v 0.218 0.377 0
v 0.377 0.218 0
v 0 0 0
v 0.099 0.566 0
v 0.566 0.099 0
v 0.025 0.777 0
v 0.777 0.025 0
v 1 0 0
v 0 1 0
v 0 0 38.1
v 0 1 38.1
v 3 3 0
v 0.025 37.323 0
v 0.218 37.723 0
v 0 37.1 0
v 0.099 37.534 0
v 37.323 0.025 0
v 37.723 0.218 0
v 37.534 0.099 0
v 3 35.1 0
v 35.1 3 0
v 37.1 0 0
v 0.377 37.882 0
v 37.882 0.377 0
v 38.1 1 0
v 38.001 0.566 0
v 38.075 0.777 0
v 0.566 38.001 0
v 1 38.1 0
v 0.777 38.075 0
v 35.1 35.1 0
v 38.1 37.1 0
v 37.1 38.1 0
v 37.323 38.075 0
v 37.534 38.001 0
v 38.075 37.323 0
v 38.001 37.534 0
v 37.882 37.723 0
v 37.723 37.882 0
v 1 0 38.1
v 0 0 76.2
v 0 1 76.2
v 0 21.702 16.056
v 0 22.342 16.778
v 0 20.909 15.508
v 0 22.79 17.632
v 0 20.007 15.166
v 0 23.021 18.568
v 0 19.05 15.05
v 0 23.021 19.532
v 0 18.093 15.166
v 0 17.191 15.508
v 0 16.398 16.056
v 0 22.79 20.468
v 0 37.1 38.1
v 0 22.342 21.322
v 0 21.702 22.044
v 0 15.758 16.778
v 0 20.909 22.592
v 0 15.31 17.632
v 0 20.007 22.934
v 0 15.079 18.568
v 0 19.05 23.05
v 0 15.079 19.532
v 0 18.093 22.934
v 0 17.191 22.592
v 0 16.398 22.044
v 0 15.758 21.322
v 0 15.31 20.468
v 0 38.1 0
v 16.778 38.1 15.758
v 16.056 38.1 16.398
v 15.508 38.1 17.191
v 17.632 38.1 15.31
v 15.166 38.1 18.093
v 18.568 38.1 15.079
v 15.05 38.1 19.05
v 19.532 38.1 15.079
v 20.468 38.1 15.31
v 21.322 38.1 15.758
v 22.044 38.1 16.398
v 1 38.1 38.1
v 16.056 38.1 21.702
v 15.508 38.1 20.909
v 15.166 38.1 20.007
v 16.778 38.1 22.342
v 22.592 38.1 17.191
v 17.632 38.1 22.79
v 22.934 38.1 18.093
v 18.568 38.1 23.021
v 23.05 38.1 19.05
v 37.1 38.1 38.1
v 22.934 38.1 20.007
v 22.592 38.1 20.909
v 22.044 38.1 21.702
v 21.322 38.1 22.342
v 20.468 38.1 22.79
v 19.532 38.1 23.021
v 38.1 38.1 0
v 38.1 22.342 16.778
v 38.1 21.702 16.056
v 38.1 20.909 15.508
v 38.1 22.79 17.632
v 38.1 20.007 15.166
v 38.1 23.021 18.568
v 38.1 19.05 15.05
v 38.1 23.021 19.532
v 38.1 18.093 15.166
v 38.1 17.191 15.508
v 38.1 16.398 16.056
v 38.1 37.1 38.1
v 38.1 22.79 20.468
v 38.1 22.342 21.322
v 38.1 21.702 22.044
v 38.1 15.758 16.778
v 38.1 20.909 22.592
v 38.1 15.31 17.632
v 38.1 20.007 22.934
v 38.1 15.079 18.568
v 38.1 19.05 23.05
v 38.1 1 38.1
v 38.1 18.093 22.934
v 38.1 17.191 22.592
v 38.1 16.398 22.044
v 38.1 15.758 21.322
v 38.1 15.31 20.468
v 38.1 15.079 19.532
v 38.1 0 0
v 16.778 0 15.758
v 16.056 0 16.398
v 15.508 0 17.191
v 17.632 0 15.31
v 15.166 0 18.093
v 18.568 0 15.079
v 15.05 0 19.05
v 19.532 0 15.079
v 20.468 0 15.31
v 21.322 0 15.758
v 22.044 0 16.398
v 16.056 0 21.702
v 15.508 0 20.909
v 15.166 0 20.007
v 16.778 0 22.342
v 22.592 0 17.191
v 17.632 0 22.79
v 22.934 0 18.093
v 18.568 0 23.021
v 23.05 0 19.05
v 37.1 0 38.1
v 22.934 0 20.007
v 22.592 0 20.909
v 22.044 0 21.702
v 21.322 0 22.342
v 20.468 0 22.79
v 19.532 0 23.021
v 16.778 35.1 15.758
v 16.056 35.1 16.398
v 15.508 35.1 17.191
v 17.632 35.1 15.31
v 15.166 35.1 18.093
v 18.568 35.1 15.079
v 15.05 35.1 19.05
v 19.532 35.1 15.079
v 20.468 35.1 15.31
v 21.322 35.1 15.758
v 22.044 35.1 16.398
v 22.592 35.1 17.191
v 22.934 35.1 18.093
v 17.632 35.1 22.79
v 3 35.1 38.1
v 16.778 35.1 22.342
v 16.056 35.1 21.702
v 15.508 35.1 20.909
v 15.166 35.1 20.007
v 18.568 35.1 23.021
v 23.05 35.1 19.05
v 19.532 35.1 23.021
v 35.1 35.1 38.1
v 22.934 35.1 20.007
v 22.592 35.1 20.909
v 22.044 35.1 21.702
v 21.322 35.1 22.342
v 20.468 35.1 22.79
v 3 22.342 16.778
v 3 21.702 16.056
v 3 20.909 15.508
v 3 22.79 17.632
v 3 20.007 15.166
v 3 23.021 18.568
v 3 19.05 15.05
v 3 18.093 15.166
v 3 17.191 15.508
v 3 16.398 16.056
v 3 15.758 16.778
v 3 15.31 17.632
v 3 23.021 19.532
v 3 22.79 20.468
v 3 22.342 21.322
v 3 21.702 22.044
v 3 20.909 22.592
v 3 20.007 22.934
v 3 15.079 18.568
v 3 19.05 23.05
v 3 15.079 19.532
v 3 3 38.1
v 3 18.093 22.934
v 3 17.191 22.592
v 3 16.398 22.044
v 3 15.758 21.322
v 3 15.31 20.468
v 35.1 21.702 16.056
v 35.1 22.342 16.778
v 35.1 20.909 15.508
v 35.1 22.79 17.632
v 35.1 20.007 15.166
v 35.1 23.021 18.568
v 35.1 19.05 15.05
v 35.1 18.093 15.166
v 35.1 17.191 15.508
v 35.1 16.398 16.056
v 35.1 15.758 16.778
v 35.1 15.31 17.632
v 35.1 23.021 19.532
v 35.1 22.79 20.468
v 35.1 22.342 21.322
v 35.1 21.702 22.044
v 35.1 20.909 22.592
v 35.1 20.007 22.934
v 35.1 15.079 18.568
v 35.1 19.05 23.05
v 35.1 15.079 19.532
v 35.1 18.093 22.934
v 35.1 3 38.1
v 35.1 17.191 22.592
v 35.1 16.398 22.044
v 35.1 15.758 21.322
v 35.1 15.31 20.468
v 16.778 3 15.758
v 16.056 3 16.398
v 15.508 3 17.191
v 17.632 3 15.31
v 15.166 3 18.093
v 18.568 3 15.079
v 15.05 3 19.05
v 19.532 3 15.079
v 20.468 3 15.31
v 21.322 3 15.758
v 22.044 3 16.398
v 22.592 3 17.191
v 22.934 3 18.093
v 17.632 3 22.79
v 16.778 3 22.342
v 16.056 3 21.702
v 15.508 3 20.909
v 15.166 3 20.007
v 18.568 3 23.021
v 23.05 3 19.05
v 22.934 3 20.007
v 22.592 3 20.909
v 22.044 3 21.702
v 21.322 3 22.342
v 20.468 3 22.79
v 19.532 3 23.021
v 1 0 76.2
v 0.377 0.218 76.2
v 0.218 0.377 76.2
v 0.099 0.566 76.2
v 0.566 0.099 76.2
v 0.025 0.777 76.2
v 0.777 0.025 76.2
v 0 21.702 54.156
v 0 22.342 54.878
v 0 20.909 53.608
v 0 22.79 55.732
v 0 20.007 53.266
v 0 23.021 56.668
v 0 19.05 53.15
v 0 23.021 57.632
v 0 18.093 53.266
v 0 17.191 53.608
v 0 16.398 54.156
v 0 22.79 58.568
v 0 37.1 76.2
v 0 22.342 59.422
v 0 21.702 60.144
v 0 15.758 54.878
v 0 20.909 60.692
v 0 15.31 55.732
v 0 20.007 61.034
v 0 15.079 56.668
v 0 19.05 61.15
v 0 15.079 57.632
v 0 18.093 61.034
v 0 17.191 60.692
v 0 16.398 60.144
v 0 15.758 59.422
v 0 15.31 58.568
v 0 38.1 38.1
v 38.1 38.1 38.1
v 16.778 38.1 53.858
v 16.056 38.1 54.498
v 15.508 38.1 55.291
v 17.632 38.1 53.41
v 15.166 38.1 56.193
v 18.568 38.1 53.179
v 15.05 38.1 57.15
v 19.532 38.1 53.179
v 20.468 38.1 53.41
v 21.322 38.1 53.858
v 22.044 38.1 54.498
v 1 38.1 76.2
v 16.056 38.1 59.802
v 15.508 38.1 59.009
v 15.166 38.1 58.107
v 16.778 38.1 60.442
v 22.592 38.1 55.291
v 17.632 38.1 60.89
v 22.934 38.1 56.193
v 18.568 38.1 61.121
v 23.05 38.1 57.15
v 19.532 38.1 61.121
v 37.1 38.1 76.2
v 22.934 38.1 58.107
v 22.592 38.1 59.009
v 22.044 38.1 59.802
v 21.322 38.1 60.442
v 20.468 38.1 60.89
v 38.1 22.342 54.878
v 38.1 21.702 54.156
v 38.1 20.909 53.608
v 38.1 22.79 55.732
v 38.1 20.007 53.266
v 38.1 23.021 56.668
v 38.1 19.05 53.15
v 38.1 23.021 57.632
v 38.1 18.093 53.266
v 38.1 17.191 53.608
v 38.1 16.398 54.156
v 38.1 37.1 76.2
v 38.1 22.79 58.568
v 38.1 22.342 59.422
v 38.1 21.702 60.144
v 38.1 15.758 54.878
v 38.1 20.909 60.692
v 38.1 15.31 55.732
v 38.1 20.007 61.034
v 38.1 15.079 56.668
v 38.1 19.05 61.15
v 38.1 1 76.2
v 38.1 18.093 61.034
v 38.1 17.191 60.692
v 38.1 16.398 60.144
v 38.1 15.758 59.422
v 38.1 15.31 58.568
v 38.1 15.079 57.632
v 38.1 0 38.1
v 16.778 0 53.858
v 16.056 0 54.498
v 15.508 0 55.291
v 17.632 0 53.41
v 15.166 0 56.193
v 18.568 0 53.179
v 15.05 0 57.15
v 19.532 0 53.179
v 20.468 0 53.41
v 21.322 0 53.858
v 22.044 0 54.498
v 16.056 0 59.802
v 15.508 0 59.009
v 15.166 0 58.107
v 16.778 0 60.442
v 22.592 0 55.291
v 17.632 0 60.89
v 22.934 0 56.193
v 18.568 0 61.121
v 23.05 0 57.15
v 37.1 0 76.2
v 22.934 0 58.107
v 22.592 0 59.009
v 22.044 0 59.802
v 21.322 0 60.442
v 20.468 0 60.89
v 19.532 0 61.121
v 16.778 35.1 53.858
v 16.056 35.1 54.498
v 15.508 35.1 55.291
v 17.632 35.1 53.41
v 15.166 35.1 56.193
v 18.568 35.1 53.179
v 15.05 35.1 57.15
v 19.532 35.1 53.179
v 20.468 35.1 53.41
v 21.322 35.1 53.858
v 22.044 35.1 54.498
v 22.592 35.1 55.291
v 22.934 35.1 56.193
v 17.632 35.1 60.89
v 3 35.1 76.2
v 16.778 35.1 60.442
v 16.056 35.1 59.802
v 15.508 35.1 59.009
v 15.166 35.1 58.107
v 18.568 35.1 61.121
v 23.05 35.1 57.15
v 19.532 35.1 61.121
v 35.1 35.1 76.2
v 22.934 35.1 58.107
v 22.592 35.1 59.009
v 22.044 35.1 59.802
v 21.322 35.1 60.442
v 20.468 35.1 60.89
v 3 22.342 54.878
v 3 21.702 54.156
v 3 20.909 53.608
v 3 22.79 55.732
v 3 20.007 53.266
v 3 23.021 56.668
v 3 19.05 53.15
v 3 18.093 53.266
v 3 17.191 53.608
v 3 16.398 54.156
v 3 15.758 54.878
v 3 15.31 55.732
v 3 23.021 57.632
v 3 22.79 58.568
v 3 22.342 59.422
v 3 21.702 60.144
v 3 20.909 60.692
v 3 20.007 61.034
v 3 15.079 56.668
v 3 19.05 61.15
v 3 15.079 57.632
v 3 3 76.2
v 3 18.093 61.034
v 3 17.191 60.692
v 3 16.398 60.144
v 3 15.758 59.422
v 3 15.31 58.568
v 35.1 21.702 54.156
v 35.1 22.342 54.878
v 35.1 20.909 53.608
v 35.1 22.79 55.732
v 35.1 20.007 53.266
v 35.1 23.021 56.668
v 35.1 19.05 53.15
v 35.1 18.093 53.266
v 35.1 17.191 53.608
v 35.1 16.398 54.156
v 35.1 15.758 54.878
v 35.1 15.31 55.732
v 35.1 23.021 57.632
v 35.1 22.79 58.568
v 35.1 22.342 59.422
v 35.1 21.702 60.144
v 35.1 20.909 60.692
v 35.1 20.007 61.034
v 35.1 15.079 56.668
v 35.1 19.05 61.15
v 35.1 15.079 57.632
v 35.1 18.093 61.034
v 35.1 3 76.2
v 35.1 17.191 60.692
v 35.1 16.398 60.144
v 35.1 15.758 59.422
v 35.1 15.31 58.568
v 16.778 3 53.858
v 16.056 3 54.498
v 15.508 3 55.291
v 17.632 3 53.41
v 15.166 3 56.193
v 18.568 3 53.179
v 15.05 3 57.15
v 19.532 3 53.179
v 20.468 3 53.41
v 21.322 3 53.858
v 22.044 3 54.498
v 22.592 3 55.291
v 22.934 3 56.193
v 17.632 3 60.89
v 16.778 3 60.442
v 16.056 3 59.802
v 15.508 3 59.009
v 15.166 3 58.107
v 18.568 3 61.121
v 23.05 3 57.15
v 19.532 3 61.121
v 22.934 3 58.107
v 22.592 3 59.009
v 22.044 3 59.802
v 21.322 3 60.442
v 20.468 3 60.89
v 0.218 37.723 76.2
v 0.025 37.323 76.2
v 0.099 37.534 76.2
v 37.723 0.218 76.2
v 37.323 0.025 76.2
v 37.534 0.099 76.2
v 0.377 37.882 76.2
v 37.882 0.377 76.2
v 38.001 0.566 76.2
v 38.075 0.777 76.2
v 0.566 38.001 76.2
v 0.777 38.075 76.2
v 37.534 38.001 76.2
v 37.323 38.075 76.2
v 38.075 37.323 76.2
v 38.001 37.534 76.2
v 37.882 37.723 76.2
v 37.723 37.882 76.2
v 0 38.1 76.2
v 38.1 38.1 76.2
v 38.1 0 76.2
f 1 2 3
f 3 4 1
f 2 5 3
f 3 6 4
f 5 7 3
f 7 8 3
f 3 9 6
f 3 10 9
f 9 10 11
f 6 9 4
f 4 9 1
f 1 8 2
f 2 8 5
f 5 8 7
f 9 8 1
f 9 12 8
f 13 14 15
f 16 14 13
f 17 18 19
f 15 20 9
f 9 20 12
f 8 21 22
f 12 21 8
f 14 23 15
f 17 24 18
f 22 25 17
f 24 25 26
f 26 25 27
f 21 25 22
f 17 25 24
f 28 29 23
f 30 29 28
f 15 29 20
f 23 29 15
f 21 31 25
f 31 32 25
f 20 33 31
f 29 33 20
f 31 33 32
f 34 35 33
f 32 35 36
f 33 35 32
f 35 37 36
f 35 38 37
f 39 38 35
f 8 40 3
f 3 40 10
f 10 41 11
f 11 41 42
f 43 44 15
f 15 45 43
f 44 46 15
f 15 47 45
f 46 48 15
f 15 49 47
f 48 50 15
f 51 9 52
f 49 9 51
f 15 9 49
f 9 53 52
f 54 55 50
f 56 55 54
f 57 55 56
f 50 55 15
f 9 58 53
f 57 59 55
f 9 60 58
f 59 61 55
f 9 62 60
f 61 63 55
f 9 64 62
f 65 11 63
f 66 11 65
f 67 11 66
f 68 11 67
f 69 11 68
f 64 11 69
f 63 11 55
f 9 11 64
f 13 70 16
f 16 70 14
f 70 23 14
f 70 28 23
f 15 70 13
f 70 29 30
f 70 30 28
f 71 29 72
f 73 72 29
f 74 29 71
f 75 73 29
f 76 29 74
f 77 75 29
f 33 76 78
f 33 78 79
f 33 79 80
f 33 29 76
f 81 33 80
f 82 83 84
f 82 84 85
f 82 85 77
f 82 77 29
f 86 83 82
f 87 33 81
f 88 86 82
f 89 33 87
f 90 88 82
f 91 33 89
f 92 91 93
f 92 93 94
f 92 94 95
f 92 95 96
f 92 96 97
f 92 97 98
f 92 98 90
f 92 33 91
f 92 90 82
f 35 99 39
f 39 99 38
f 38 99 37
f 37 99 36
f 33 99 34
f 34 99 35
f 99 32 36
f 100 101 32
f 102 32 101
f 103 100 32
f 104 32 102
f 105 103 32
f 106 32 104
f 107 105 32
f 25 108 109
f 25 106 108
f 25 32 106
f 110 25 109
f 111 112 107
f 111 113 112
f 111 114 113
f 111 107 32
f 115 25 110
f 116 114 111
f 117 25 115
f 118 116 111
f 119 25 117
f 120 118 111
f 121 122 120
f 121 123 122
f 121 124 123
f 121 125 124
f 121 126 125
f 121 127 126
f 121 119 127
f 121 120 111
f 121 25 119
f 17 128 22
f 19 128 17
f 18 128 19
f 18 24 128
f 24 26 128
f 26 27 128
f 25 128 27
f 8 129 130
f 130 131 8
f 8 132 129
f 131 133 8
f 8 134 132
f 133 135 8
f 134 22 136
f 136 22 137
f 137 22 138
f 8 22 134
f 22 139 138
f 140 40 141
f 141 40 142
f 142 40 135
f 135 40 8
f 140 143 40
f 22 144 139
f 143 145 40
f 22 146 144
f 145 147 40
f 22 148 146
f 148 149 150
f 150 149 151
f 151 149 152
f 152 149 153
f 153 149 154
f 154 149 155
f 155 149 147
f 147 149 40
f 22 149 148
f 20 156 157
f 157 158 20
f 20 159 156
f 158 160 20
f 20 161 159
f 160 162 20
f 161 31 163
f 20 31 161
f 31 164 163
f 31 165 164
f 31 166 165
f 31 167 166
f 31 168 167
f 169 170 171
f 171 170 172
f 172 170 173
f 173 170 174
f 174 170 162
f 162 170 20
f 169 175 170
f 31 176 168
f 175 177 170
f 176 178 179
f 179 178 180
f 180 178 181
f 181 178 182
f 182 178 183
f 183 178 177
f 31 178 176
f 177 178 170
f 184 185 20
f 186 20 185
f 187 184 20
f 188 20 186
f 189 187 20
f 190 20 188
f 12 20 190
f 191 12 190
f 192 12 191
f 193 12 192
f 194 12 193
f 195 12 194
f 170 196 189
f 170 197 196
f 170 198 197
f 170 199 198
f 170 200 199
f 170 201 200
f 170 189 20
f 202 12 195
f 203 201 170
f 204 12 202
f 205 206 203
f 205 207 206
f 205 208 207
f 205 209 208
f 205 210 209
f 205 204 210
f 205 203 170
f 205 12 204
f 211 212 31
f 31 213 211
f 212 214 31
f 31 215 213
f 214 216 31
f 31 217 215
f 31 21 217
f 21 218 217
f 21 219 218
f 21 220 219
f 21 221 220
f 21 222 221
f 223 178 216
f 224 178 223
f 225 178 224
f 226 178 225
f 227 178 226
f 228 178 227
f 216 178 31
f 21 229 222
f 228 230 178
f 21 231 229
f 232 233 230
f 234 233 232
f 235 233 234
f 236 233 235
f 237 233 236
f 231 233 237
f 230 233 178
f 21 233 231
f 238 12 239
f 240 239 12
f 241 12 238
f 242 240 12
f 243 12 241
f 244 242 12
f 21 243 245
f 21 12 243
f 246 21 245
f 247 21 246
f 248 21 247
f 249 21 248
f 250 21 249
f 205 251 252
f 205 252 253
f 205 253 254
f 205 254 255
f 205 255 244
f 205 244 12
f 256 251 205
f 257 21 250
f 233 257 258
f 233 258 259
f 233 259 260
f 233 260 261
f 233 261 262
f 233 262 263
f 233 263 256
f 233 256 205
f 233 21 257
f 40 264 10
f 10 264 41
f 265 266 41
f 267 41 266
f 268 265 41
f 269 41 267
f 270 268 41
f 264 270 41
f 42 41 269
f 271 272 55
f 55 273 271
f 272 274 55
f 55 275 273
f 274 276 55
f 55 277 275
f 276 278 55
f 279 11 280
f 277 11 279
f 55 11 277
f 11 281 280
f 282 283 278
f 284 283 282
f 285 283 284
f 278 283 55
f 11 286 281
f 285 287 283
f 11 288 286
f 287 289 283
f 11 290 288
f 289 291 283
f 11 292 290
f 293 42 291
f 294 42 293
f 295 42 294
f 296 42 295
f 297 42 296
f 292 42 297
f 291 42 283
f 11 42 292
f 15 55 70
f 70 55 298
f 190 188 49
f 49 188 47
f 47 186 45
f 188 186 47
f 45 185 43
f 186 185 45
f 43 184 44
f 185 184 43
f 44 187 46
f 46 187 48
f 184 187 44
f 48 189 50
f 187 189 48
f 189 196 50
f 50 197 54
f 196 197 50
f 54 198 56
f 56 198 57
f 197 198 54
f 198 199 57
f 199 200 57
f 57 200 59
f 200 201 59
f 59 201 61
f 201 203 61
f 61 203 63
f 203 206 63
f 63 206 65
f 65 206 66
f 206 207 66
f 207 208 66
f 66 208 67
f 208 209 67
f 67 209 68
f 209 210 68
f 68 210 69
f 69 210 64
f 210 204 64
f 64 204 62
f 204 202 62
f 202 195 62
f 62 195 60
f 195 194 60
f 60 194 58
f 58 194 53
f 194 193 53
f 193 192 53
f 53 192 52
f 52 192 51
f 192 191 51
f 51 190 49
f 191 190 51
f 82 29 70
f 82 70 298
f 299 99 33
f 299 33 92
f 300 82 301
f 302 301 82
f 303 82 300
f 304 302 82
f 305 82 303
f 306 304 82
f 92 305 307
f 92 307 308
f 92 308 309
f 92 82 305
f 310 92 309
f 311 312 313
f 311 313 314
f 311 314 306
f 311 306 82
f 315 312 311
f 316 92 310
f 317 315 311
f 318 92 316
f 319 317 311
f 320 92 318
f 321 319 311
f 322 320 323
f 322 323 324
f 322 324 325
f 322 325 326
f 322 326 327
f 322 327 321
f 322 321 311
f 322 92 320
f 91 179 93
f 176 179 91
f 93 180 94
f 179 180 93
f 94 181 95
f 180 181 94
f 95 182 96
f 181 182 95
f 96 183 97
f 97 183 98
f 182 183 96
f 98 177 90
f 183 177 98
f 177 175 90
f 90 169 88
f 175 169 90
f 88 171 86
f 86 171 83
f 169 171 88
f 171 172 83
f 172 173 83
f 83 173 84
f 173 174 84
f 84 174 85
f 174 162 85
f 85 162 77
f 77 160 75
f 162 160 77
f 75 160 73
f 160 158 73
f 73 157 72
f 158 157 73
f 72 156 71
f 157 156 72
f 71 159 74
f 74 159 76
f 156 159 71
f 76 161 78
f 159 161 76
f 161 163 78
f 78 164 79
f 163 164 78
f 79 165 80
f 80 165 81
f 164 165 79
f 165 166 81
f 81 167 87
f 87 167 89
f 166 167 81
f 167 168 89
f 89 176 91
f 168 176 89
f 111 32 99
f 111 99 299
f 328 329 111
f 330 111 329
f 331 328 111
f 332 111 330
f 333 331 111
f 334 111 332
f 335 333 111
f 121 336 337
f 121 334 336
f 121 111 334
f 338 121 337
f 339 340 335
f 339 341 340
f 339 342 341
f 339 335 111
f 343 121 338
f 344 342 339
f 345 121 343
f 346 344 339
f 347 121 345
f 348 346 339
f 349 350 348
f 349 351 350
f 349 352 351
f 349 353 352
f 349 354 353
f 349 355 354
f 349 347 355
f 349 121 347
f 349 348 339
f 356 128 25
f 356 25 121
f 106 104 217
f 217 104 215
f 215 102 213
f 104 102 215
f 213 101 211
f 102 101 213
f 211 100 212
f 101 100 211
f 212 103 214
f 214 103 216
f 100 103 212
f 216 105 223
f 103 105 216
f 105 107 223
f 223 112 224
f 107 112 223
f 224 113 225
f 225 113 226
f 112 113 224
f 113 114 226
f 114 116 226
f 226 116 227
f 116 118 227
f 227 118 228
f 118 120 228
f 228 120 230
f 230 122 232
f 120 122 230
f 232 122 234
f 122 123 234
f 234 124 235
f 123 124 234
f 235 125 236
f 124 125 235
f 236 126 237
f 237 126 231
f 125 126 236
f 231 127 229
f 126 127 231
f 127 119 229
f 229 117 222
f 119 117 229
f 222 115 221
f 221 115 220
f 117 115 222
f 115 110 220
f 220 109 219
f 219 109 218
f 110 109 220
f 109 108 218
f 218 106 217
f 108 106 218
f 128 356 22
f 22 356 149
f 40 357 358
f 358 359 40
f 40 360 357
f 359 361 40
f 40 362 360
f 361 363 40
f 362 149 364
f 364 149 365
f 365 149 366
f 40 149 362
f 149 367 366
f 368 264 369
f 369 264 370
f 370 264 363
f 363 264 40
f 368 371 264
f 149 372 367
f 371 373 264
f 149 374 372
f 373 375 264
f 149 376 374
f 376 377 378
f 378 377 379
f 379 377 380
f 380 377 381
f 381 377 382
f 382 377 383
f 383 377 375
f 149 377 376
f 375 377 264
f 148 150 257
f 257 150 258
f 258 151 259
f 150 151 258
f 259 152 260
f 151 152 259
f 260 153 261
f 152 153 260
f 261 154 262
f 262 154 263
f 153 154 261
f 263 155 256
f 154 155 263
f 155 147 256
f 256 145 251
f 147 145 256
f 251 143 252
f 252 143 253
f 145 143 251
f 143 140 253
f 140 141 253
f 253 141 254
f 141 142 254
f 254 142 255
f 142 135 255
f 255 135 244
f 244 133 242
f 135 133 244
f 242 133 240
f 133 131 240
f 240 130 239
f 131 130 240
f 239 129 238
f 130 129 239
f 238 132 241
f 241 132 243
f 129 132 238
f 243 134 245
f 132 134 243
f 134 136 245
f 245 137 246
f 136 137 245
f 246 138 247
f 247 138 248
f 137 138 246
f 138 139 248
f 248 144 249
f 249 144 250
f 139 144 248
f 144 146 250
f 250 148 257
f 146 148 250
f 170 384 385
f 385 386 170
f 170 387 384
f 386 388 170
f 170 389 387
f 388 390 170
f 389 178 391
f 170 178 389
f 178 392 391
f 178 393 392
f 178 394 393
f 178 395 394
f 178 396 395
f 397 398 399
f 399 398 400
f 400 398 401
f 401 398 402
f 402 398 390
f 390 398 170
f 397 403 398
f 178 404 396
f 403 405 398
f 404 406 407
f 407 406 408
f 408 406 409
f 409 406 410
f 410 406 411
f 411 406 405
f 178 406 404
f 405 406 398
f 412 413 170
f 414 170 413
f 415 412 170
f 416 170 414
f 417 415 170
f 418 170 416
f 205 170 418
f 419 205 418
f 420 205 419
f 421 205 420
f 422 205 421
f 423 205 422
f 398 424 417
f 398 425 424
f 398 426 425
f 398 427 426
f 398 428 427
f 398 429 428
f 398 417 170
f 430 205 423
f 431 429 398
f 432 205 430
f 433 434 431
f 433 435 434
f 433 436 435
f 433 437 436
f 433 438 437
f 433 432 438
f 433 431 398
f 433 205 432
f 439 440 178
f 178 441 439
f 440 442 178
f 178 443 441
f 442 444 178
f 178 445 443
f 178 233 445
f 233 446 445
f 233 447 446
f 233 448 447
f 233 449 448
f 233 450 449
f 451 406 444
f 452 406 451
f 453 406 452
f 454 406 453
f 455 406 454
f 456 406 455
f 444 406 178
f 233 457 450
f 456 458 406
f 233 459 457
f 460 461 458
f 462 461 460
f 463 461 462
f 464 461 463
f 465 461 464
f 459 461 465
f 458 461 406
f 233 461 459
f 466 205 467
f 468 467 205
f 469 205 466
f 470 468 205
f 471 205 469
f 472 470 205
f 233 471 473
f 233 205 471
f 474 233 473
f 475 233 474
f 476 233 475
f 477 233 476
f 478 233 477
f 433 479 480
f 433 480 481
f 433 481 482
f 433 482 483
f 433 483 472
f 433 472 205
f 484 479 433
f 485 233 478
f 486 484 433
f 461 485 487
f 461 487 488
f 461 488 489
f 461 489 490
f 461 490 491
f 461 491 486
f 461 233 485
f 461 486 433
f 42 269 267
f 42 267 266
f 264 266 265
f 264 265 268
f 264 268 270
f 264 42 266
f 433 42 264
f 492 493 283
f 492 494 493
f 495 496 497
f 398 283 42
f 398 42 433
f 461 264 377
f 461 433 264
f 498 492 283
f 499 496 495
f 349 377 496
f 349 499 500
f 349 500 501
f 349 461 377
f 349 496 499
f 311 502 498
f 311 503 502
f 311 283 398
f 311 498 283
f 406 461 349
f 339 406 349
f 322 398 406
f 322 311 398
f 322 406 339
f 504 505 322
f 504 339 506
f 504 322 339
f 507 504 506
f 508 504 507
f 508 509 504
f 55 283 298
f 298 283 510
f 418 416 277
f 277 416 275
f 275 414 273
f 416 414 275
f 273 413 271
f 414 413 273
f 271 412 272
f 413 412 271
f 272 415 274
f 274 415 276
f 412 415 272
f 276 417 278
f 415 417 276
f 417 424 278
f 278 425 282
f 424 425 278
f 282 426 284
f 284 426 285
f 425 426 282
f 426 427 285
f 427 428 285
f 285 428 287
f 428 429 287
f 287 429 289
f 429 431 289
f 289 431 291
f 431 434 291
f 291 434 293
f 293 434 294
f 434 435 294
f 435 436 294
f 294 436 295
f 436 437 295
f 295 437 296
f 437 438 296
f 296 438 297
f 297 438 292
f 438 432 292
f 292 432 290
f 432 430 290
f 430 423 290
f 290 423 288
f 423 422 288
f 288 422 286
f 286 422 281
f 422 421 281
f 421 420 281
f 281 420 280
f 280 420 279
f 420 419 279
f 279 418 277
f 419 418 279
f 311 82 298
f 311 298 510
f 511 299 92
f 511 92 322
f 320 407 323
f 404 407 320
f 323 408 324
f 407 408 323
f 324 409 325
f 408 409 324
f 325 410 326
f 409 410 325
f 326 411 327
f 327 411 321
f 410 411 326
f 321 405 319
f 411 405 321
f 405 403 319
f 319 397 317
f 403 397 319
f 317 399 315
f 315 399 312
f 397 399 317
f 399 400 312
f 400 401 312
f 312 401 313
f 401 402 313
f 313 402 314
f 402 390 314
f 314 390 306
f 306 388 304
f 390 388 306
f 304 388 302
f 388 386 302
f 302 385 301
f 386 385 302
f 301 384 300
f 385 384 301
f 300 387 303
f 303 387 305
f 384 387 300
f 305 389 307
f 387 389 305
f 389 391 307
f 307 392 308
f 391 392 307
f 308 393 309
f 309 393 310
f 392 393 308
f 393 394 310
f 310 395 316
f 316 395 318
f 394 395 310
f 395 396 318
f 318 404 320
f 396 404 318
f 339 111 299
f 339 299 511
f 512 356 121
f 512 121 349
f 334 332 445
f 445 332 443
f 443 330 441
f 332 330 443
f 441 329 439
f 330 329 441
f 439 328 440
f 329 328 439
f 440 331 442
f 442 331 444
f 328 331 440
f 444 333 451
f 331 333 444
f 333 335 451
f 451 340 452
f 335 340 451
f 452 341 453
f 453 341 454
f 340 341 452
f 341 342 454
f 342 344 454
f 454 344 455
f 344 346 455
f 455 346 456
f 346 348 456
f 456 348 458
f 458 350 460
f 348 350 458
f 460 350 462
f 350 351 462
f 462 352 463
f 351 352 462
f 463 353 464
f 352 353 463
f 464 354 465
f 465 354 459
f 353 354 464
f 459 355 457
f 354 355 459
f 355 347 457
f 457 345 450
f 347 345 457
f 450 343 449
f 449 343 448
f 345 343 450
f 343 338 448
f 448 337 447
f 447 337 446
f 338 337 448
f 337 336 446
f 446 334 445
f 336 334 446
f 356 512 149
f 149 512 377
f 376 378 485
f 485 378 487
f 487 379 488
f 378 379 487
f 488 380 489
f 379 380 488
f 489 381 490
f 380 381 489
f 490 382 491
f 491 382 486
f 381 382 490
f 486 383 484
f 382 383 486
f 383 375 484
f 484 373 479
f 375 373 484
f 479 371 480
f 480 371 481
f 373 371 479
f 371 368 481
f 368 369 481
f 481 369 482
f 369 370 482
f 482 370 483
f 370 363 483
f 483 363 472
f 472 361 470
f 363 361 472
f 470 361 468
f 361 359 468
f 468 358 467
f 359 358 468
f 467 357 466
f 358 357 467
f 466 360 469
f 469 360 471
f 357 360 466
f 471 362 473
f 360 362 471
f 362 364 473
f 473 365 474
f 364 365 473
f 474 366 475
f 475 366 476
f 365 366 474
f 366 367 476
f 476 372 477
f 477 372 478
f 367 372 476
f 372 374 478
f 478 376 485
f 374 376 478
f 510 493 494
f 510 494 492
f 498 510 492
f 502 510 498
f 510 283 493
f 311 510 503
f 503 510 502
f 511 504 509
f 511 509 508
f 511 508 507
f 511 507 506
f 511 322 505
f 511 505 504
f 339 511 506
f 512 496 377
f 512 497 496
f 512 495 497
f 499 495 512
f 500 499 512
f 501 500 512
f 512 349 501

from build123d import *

# Parameters (mm, degrees)
BOX001_W                = 32.1
BOX001_H                = 32.1
BOX001_DEPTH            = 38.1
CYLINDER001_R           = 4
CYLINDER001_DEPTH       = 38.1
CYLINDER001_PITCH_ANGLE = 90
CYLINDER_R              = 4
CYLINDER_DEPTH          = 38.1
CYLINDER_ROLL_ANGLE     = 90
BOX_W                   = 38.1
BOX_H                   = 38.1
BOX_DEPTH               = 38.1
FILLET_R                = 1
BOX003_W                = 32.1
BOX003_H                = 32.1
BOX003_DEPTH            = 38.1
CYLINDER003_R           = 4
CYLINDER003_DEPTH       = 38.1
CYLINDER003_PITCH_ANGLE = 90
CYLINDER002_R           = 4
CYLINDER002_DEPTH       = 38.1
CYLINDER002_ROLL_ANGLE  = 90
BOX002_W                = 38.1
BOX002_H                = 38.1
BOX002_DEPTH            = 38.1
FILLET001_R             = 1


with BuildPart() as cube001:
    # Box001 → Box001 (new body)
    with BuildSketch(Plane(origin=(3, 3, 0), x_dir=(1, 0, 0), z_dir=(0, 0, 1))):
        with Locations((16.05, 16.05)):
            Rectangle(BOX001_W, BOX001_H)
    extrude(amount=BOX001_DEPTH)


with BuildPart() as cylinder001:
    # Cylinder001 → Cylinder001 (new body)
    with BuildSketch(Plane.XY):
        Circle(CYLINDER001_R)
    extrude(amount=CYLINDER001_DEPTH)


with BuildPart() as cylinder001_1:
    # Cylinder001 pitch: moved
    add(cylinder001.part.rotate(Axis((0, 0, 0), (0, 1, 0)), CYLINDER001_PITCH_ANGLE))


with BuildPart() as cylinder001_2:
    # Cylinder001 placement: moved
    add(cylinder001_1.part.moved(Location((0, 19.05, 19.05))))


with BuildPart() as cylinder:
    # Cylinder → Cylinder (new body)
    with BuildSketch(Plane.XY):
        Circle(CYLINDER_R)
    extrude(amount=CYLINDER_DEPTH)


with BuildPart() as cylinder_1:
    # Cylinder roll: moved
    add(cylinder.part.rotate(Axis((0, 0, 0), (1, 0, 0)), CYLINDER_ROLL_ANGLE))


with BuildPart() as cylinder_2:
    # Cylinder placement: moved
    add(cylinder_1.part.moved(Location((19.05, 38.1, 19.05))))


with BuildPart() as cut002:
    # Box → Box (new body)
    with BuildSketch(Plane.XY):
        with Locations((19.05, 19.05)):
            Rectangle(BOX_W, BOX_H)
    extrude(amount=BOX_DEPTH)

    # Cut: cut Cylinder
    add(cylinder_2.part, mode=Mode.SUBTRACT)

    # Cut001: cut Cylinder001
    add(cylinder001_2.part, mode=Mode.SUBTRACT)

    # Cut002: cut Cube001
    add(cube001.part, mode=Mode.SUBTRACT)


with BuildPart() as fillet_body:
    # Fillet base: copy of Cut002
    add(cut002.part)

    # Fillet
    fillet_edges = [fillet_body.edges().sort_by_distance(p)[0] for p in [
        (0, 38.1, 19.05),
        (0, 0, 19.05),
        (38.1, 38.1, 19.05),
        (38.1, 0, 19.05),
    ]]
    fillet(fillet_edges, radius=FILLET_R)


with BuildPart() as cube003:
    # Box003 → Box003 (new body)
    with BuildSketch(Plane(origin=(3, 3, 0), x_dir=(1, 0, 0), z_dir=(0, 0, 1))):
        with Locations((16.05, 16.05)):
            Rectangle(BOX003_W, BOX003_H)
    extrude(amount=BOX003_DEPTH)


with BuildPart() as cylinder003:
    # Cylinder003 → Cylinder003 (new body)
    with BuildSketch(Plane.XY):
        Circle(CYLINDER003_R)
    extrude(amount=CYLINDER003_DEPTH)


with BuildPart() as cylinder003_1:
    # Cylinder003 pitch: moved
    add(cylinder003.part.rotate(Axis((0, 0, 0), (0, 1, 0)), CYLINDER003_PITCH_ANGLE))


with BuildPart() as cylinder003_2:
    # Cylinder003 placement: moved
    add(cylinder003_1.part.moved(Location((0, 19.05, 19.05))))


with BuildPart() as cylinder002:
    # Cylinder002 → Cylinder002 (new body)
    with BuildSketch(Plane.XY):
        Circle(CYLINDER002_R)
    extrude(amount=CYLINDER002_DEPTH)


with BuildPart() as cylinder002_1:
    # Cylinder002 roll: moved
    add(cylinder002.part.rotate(Axis((0, 0, 0), (1, 0, 0)), CYLINDER002_ROLL_ANGLE))


with BuildPart() as cylinder002_2:
    # Cylinder002 placement: moved
    add(cylinder002_1.part.moved(Location((19.05, 38.1, 19.05))))


with BuildPart() as cut005:
    # Box002 → Box002 (new body)
    with BuildSketch(Plane.XY):
        with Locations((19.05, 19.05)):
            Rectangle(BOX002_W, BOX002_H)
    extrude(amount=BOX002_DEPTH)

    # Cut003: cut Cylinder002
    add(cylinder002_2.part, mode=Mode.SUBTRACT)

    # Cut004: cut Cylinder003
    add(cylinder003_2.part, mode=Mode.SUBTRACT)

    # Cut005: cut Cube003
    add(cube003.part, mode=Mode.SUBTRACT)


with BuildPart() as cut005_1:
    # Cut005 placement: moved
    add(cut005.part.moved(Location((0, 0, 38.1))))


with BuildPart() as fillet001:
    # Fillet001 base: copy of Cut005
    add(cut005_1.part)

    # Fillet001
    fillet001_edges = [fillet001.edges().sort_by_distance(p)[0] for p in [
        (0, 38.1, 57.15),
        (0, 0, 57.15),
        (38.1, 38.1, 57.15),
        (38.1, 0, 57.15),
    ]]
    fillet(fillet001_edges, radius=FILLET001_R)


with BuildPart() as fusion:
    # Fusion base: copy of Cut002
    add(cut002.part)

    # Fusion: union Fillet body, Cut005, Fillet001
    add(fillet_body.part)
    add(cut005_1.part)
    add(fillet001.part)


solid = fusion.part
